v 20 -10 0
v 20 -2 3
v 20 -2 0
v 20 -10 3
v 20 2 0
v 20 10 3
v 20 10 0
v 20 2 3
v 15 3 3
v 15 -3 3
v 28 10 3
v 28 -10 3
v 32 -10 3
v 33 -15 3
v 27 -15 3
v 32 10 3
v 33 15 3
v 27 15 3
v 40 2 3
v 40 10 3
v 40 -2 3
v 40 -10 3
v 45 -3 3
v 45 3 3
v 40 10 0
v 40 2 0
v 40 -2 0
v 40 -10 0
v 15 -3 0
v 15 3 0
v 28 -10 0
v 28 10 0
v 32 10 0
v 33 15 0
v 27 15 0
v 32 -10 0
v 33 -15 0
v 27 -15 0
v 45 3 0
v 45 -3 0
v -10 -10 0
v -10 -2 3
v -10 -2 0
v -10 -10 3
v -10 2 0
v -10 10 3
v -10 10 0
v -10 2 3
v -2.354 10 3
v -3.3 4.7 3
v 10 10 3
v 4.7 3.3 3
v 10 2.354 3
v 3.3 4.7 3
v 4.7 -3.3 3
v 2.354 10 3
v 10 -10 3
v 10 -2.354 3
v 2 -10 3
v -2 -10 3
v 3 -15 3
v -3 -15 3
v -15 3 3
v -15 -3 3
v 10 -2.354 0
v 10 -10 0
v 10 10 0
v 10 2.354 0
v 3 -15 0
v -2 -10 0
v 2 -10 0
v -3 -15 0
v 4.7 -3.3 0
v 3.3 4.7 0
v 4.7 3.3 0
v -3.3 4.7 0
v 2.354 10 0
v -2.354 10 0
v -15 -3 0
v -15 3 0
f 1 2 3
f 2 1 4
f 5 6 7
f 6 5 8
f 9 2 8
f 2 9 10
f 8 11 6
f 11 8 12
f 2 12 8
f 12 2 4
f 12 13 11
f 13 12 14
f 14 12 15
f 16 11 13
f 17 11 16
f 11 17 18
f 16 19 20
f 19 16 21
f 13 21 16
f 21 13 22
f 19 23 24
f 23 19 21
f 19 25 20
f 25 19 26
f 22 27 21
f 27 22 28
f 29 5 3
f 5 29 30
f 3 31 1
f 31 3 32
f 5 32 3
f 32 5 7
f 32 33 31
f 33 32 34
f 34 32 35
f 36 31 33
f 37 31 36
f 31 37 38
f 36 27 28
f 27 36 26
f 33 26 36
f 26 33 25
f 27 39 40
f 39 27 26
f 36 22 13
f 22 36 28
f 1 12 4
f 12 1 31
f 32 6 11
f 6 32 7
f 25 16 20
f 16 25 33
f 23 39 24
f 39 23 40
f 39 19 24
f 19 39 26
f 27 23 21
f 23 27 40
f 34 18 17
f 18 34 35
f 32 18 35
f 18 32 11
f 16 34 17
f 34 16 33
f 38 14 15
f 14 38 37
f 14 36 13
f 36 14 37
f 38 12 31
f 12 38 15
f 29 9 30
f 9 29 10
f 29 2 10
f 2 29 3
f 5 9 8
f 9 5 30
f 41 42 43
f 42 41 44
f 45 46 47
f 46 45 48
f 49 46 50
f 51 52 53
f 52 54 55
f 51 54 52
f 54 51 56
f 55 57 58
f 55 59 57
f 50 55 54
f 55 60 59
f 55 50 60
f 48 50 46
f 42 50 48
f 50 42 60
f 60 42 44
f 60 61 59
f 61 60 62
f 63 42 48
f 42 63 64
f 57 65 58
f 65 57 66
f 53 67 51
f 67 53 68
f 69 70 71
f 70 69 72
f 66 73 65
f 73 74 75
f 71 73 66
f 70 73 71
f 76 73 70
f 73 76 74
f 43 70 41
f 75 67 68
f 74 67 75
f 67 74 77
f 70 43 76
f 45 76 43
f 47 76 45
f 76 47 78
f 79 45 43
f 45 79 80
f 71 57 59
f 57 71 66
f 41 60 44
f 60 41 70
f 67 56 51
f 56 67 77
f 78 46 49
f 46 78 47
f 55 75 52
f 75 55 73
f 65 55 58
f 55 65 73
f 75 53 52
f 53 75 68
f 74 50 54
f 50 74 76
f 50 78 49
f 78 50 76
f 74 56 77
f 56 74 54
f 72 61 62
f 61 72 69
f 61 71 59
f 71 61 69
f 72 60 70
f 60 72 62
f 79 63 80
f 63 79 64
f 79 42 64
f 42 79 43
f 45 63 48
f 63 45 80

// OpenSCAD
partM(30);
partF();

//section Dove Tail Joint
module secDTJ(pX=0, pY=0, pZ=0, rX=0, rY=0, rZ=0, sizeDTJ = 2, heightDTJ=3, stepDTJ=0.0, clr="grey"){        
        translate([pX, pY, pZ-stepDTJ])
        rotate([rX, rY, rZ])
        color(clr)
        linear_extrude(heightDTJ+2*stepDTJ)
            polygon(
                points=[
                        [-stepDTJ, (sizeDTJ+stepDTJ)],
                        [(sizeDTJ*2+1+stepDTJ), (sizeDTJ+1+stepDTJ)],
                        [(sizeDTJ*2+1+stepDTJ),-(sizeDTJ+1+stepDTJ)],
                        [-stepDTJ,-(sizeDTJ+stepDTJ)]
                       ]//points
                );//polygon
}//module secDTJ


module partM(pX=0, pY=0, pZ=0){
    translate([pX, pY, pZ]){
        translate([-10,-10,0])
            cube([20,20,3]);
        secDTJ(10, 0, 0, 0, 0, 0);
        secDTJ(0, 10, 0, 0, 0, 90);
        secDTJ(0, -10, 0, 0, 0, 270);
        secDTJ(-10, 0, 0, 0, 0, 180);
    }//transform
}//module

module partF(pX=0, pY=0, pZ=0){
    translate([pX, pY, pZ]){
        difference(){
        translate([-10,-10,0])
            cube([20,20,3]);
        secDTJ(10, 0, 0, 0, 0, 180, stepDTJ=0.3);
        secDTJ(0, 10, 0, 0, 0, 270, stepDTJ=0.3);
        //secDTJ(3.5, 3.5, 0, 0, 0, 45);
        }//diff
        secDTJ(0, -10, 0, 0, 0, 270);
        secDTJ(-10, 0, 0, 0, 0, 180);
    }//transform
}//module
